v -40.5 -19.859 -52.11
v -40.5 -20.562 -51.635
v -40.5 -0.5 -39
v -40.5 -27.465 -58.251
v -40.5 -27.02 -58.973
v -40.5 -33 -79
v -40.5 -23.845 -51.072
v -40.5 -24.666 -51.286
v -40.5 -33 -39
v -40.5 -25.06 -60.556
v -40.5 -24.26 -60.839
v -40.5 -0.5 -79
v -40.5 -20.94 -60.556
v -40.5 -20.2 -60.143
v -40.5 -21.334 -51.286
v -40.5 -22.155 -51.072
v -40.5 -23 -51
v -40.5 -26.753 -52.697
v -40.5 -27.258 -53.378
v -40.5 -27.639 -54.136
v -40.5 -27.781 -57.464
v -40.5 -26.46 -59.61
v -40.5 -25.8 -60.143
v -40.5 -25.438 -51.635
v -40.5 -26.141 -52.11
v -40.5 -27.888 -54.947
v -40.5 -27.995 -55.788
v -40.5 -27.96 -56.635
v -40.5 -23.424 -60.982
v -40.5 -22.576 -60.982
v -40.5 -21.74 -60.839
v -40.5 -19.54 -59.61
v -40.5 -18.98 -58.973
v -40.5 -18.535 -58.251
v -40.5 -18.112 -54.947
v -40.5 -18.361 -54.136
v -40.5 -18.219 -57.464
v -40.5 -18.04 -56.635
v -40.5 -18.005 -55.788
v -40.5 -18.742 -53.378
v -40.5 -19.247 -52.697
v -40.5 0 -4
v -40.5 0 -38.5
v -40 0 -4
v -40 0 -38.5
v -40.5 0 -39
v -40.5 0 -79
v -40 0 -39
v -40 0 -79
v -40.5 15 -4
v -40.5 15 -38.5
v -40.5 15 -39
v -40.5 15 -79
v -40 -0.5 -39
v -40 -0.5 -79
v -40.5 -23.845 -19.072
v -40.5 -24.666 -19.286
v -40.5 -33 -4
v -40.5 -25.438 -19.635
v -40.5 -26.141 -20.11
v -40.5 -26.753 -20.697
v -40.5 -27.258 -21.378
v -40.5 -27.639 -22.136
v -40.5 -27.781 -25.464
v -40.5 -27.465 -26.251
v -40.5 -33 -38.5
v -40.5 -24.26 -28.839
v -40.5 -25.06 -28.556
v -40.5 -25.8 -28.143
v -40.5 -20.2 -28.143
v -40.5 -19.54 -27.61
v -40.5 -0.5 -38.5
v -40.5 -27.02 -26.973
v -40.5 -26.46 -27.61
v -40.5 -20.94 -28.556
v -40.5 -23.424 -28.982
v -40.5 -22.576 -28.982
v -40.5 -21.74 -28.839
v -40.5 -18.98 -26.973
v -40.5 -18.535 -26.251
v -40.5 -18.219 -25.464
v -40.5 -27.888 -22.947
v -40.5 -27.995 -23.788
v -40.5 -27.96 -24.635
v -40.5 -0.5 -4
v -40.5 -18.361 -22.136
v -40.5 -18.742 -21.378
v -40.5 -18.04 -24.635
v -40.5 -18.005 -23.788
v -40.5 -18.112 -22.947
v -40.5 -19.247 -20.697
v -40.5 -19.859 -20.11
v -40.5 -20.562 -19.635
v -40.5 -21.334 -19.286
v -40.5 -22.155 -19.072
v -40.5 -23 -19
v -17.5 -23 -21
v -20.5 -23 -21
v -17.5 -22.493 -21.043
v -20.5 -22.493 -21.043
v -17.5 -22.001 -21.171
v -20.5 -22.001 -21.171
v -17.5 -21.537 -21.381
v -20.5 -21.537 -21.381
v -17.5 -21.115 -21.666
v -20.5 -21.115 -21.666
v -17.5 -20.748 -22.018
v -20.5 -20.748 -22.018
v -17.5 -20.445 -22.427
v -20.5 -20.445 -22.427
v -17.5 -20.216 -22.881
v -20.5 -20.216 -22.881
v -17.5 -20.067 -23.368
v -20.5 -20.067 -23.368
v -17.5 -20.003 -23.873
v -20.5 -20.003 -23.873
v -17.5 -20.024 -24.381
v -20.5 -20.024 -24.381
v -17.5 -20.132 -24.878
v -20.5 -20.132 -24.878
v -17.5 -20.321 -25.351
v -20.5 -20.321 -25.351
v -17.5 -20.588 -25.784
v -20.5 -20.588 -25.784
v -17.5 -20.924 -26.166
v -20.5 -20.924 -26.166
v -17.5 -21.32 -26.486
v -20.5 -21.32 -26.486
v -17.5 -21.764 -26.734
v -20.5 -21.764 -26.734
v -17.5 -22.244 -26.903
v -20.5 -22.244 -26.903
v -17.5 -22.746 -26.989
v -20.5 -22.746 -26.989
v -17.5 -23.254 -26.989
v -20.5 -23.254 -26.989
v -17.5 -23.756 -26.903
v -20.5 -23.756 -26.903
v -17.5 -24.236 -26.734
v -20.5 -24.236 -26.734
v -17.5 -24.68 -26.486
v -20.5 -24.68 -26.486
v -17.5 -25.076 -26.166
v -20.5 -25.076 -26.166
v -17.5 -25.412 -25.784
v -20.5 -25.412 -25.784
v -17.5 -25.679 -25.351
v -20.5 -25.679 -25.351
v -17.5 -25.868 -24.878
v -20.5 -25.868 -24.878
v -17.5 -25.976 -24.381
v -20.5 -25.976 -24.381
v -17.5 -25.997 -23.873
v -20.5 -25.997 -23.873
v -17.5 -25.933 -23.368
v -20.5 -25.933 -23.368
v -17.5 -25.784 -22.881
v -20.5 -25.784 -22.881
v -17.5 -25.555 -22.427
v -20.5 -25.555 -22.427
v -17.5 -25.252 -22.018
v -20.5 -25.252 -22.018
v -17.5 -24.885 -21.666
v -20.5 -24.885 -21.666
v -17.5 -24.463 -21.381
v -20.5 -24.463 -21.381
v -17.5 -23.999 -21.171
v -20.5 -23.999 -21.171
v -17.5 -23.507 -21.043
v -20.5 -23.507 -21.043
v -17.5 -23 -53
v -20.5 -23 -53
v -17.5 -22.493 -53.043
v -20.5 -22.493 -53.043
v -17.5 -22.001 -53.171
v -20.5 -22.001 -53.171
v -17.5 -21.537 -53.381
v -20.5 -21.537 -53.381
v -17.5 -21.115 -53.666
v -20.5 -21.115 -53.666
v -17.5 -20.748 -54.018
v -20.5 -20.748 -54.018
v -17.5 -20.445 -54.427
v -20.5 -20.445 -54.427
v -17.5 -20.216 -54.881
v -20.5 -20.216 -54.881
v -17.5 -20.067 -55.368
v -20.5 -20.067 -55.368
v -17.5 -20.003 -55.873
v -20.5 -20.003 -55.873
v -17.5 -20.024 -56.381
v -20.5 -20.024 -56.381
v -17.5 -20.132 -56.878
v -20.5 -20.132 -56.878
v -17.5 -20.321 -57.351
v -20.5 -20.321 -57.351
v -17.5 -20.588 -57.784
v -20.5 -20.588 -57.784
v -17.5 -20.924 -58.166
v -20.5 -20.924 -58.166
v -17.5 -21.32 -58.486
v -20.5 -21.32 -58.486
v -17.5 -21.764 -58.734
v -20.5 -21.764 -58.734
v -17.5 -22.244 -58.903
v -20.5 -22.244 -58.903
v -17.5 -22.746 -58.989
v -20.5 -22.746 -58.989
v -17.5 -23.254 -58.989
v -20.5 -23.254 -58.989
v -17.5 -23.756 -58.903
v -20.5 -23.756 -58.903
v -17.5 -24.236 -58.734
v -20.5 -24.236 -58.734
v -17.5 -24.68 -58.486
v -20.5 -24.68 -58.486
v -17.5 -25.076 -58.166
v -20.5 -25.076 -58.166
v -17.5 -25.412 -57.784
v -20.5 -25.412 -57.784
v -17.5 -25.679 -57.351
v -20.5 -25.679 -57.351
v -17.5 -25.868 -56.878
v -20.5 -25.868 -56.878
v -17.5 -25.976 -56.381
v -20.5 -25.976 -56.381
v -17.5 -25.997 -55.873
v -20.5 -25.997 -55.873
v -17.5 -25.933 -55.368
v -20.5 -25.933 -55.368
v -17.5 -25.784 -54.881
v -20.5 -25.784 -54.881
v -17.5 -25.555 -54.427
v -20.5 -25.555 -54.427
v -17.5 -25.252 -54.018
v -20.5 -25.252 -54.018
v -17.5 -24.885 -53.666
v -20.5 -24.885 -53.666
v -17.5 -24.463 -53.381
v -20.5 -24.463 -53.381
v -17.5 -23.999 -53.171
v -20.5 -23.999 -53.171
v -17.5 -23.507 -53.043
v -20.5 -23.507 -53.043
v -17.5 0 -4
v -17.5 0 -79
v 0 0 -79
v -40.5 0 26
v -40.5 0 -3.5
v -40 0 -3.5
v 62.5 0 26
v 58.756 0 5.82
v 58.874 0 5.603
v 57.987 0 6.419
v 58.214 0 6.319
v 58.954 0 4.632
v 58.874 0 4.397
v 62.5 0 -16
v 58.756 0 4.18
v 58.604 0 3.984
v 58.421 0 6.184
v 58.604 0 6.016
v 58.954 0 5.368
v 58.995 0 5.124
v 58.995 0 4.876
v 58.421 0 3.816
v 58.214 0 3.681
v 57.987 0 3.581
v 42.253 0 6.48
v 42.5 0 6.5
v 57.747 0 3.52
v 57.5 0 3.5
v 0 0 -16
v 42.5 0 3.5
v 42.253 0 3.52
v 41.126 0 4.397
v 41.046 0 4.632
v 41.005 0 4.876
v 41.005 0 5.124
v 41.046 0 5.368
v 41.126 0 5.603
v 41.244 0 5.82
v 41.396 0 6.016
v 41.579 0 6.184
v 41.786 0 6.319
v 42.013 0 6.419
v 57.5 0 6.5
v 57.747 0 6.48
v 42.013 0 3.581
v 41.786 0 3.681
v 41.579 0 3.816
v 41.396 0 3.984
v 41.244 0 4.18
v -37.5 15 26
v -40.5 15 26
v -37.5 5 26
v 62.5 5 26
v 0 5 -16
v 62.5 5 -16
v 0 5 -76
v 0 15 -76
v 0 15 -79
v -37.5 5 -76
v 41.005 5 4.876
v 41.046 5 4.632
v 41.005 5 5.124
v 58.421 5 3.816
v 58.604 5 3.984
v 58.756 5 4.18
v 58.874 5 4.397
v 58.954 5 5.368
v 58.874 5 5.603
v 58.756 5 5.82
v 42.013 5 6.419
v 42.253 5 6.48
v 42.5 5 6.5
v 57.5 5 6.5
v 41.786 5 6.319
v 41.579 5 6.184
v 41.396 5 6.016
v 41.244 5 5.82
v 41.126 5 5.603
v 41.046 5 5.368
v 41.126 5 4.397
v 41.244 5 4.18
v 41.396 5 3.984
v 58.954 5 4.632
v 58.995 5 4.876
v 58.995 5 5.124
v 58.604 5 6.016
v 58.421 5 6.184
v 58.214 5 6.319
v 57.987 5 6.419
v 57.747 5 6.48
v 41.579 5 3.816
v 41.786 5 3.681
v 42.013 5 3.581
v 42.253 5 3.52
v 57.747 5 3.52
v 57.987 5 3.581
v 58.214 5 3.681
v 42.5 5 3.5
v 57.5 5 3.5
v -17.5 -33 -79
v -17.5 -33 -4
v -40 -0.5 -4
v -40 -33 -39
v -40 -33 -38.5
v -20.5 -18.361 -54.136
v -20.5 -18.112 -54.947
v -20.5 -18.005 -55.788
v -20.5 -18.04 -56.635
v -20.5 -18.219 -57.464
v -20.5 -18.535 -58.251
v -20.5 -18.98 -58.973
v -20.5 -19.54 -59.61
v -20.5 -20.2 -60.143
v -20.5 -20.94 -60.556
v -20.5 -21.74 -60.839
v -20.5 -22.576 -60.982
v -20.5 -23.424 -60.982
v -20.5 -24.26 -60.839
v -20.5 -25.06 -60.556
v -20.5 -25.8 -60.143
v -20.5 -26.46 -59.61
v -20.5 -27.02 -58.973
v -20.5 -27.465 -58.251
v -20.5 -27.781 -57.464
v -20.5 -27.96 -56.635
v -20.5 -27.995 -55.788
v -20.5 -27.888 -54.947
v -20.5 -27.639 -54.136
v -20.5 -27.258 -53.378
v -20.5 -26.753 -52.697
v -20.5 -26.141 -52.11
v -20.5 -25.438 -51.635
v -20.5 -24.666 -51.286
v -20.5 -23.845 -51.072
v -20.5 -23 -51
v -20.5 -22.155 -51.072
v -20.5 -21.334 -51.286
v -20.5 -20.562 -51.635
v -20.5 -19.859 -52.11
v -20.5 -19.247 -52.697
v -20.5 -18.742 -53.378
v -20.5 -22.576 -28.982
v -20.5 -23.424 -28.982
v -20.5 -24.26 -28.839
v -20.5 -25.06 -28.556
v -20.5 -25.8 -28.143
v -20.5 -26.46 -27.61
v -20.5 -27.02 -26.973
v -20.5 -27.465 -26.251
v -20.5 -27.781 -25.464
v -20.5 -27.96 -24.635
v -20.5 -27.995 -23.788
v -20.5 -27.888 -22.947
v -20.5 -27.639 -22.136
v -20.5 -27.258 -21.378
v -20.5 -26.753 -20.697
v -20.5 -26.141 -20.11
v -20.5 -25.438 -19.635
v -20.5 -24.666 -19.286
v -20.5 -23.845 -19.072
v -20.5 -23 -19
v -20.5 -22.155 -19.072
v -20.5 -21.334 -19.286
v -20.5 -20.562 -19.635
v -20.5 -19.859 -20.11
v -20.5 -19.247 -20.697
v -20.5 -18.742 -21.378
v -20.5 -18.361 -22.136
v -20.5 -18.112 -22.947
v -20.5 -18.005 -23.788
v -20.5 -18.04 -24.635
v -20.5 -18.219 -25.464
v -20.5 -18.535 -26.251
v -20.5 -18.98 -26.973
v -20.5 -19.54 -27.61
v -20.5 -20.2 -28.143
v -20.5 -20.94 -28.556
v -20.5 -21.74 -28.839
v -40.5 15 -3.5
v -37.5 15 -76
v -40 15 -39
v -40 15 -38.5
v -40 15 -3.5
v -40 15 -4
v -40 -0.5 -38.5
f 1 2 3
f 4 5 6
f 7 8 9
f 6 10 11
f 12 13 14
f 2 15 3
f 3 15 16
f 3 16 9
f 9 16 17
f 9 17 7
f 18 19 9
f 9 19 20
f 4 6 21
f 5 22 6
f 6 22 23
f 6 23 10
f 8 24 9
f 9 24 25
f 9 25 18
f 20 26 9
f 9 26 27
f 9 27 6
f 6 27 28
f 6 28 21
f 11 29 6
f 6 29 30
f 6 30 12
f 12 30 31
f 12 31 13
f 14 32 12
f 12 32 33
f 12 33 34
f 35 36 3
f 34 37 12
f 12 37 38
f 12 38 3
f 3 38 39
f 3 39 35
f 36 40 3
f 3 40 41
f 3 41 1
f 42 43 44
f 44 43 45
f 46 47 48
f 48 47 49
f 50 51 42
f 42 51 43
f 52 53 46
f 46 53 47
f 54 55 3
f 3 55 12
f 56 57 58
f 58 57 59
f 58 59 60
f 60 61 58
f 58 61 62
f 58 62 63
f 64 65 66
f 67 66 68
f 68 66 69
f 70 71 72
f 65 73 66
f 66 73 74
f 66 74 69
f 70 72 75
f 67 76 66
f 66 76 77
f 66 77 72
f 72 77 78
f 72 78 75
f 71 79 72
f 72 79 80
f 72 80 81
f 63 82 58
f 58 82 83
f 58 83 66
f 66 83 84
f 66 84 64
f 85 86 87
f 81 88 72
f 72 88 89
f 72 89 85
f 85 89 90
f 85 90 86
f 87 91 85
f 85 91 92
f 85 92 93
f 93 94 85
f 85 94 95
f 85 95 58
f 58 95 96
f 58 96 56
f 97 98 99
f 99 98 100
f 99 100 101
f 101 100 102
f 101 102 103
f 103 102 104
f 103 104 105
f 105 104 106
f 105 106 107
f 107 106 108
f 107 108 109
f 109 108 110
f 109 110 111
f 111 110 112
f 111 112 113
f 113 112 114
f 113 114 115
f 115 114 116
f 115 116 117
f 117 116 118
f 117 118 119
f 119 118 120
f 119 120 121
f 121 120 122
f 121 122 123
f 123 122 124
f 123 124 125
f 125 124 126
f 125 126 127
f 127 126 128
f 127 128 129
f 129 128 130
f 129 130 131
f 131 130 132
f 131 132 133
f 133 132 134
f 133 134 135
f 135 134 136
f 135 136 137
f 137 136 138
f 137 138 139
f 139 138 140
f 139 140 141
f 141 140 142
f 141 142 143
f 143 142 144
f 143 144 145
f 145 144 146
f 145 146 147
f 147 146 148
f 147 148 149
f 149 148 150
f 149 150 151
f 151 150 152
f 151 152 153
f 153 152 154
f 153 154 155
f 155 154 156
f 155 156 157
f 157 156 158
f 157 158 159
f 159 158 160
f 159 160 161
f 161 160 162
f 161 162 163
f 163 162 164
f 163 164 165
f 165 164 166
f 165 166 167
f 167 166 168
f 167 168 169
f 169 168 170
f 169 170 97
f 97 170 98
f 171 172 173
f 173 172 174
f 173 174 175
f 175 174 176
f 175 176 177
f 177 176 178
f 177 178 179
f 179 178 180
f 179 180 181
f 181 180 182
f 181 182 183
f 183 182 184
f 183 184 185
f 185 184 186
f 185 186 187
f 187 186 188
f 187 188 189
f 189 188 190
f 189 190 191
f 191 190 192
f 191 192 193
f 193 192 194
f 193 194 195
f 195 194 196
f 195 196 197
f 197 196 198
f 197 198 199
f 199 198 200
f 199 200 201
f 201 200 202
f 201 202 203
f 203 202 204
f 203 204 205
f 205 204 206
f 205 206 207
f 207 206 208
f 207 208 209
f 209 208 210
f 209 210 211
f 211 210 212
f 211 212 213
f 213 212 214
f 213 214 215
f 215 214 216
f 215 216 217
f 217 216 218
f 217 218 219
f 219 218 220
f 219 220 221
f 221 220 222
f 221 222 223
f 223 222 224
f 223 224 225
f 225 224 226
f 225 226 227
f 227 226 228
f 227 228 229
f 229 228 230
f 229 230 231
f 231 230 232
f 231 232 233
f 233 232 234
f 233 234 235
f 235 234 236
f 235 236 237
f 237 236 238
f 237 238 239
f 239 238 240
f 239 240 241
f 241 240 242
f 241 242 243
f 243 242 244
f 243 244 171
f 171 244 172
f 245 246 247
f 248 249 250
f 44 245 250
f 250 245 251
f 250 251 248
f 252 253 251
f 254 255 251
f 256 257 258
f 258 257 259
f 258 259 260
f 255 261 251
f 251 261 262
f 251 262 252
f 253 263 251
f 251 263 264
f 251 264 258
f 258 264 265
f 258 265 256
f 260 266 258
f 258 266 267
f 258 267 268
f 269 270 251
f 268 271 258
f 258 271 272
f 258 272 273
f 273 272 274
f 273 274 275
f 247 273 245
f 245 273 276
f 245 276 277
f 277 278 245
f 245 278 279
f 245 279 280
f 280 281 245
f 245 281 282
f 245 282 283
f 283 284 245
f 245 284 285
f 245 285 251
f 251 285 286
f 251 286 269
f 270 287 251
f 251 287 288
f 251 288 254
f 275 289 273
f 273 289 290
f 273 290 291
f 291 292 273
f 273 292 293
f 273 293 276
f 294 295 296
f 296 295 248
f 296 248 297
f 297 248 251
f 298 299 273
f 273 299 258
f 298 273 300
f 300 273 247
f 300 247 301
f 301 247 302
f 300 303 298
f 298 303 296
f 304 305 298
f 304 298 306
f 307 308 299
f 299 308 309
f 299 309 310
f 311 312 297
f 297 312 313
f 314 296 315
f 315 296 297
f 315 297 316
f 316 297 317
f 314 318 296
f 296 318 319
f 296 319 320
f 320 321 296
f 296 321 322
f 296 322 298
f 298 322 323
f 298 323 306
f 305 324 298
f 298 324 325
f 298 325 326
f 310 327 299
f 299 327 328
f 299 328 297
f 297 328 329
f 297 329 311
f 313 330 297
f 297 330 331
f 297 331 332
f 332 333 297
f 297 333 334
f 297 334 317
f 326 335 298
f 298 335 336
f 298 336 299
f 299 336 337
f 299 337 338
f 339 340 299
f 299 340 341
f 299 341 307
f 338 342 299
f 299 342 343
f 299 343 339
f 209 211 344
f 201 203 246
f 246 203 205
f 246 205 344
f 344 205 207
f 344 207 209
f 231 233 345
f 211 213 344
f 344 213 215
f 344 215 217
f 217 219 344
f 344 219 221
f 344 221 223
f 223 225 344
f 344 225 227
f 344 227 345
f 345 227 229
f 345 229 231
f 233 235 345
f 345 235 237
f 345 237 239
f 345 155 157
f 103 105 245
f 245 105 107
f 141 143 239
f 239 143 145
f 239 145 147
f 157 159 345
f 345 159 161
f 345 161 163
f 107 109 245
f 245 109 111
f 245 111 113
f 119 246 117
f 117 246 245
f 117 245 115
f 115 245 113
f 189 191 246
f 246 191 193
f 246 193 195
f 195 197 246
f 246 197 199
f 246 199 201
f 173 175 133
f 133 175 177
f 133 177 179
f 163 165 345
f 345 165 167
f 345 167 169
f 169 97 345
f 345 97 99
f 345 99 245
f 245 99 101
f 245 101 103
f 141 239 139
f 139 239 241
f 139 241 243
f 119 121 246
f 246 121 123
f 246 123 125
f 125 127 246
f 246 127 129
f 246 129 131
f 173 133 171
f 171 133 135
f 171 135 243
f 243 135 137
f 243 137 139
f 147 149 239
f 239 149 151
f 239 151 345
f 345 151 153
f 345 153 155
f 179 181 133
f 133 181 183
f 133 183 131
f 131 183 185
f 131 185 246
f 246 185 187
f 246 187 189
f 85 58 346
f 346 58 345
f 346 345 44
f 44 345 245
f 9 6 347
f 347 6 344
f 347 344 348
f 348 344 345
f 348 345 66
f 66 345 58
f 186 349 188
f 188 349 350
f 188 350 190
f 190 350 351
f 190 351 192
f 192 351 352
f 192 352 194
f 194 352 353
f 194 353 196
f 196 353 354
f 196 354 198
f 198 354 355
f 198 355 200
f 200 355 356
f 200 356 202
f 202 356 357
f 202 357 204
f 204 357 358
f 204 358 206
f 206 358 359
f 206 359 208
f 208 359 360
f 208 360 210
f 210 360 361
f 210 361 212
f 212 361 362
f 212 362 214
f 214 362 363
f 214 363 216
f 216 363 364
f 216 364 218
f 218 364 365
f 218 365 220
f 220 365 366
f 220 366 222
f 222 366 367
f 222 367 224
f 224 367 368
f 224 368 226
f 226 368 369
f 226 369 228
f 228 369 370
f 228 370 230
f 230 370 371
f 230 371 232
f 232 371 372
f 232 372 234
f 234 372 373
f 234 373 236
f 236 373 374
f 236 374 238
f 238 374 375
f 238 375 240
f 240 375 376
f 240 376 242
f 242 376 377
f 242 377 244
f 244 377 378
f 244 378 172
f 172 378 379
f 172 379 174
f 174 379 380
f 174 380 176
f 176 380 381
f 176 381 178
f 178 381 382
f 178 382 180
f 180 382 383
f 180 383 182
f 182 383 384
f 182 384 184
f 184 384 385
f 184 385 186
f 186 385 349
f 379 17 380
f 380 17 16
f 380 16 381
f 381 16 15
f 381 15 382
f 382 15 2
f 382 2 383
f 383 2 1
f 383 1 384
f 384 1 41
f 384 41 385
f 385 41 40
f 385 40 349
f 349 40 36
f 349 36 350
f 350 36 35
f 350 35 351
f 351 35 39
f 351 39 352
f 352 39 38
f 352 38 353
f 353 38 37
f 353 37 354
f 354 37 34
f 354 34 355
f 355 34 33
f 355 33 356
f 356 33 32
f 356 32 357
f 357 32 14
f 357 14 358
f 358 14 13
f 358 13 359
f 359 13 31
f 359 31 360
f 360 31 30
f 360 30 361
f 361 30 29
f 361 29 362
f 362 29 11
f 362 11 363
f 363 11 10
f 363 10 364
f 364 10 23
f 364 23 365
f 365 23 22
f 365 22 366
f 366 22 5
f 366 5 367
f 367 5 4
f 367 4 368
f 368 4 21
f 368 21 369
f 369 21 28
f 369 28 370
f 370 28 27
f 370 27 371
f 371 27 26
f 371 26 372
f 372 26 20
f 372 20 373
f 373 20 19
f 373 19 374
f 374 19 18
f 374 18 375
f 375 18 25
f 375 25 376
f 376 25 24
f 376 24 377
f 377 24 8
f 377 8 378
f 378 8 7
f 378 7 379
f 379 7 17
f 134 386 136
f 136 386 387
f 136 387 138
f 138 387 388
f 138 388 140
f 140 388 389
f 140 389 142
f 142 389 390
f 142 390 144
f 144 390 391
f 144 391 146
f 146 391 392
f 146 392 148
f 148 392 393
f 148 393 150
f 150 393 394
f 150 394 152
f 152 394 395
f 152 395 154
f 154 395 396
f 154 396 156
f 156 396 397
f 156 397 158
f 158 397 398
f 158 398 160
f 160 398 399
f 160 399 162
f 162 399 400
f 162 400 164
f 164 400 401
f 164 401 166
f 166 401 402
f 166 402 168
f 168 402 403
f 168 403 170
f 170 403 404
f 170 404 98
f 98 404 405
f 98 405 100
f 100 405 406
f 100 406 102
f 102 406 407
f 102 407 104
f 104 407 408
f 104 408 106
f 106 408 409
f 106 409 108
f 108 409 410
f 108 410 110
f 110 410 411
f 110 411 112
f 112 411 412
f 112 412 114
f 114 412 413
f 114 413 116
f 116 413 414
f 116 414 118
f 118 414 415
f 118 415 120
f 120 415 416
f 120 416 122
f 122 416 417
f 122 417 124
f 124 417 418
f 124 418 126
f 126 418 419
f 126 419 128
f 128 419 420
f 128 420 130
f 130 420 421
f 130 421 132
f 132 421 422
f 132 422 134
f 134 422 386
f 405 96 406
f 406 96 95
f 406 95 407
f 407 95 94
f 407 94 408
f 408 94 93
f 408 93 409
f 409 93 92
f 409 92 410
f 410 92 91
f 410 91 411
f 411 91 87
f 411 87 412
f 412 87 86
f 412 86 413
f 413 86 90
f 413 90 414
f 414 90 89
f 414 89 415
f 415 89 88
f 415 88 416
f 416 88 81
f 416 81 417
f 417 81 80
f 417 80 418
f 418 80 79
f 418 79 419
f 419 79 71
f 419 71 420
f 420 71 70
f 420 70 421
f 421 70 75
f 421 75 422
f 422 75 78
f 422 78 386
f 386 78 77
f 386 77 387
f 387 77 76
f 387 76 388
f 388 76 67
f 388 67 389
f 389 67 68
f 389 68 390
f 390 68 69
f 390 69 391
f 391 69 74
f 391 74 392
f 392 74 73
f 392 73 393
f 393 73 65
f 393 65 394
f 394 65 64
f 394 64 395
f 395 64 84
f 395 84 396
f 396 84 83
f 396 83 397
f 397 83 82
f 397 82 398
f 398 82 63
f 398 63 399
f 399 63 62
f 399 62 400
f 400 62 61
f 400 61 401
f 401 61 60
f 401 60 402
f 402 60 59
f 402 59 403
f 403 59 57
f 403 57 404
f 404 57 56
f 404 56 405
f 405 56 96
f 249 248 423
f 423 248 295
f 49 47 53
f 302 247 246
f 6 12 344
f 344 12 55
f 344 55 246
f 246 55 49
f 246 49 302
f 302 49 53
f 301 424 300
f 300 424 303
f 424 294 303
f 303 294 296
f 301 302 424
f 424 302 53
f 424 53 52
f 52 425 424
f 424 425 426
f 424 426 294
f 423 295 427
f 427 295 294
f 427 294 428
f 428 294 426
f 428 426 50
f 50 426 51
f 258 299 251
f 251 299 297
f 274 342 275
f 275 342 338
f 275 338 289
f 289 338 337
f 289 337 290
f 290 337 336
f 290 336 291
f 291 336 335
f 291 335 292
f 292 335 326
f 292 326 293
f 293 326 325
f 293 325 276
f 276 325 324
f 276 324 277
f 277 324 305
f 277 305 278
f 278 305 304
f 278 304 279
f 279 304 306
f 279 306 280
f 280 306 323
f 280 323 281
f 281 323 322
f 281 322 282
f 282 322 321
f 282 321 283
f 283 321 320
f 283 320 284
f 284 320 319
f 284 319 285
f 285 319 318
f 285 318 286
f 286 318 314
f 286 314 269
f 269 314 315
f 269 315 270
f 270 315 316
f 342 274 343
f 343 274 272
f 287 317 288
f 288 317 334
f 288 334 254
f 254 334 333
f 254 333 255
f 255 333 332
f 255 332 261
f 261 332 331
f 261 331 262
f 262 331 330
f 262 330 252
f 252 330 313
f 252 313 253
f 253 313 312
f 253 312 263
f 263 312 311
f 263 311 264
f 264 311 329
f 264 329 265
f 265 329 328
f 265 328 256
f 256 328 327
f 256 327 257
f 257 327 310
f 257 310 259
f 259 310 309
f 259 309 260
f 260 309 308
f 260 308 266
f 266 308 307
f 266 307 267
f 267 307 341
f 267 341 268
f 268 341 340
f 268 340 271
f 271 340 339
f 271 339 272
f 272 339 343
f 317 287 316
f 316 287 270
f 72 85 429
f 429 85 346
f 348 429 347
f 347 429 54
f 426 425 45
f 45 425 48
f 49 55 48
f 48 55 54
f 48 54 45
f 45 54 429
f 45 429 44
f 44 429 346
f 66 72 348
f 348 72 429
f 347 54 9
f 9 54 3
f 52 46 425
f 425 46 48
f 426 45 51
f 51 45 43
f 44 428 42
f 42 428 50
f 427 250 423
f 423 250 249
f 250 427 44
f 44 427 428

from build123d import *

# Parameters (mm, degrees)
EXTRUDE_1_DEPTH     = 5
SKETCH_2_W          = 20
SKETCH_2_H          = 72
EXTRUDE_2_DEPTH     = 33
SKETCH_3_R          = 3
CUT_EXTRUDE_1_DEPTH = 30
SKETCH_4_R          = 5
CUT_EXTRUDE_2_DEPTH = 17
EXTRUDE_START       = 3
SKETCH_5_R          = 5
EXTRUDE_3_DEPTH     = 3
EXTRUDE_4_DEPTH     = 3
EXTRUDE_5_DEPTH     = 10
SKETCH_8_W          = 42
SKETCH_8_H          = 5
EXTRUDE_6_DEPTH     = 25
CUT_EXTRUDE_3_DEPTH = 10
SKETCH_10_W         = 75
SKETCH_10_H         = 0.5
CUT_EXTRUDE_4_DEPTH = 0.5
SKETCH_11_W         = 0.5
SKETCH_11_H         = 15
SKETCH_11_H_2       = 48
CUT_EXTRUDE_5_DEPTH = 0.5


with BuildPart() as part:
    # 草图1 → 凸台-拉伸1 (new body)
    with BuildSketch(Plane(origin=(0, 0, 0), x_dir=(1, 0, 0), z_dir=(0, 1, 0))):
        Polygon((-37.5, 76), (-37.5, -26), (37.5, -26), (37.5, 16), (0, 16), (0, 76), align=None)
    extrude(amount=EXTRUDE_1_DEPTH)

    # 草图2 → 凸台-拉伸2 (add)
    with BuildSketch(Plane.XZ):
        with Locations((-27.5, -40)):
            Rectangle(SKETCH_2_W, SKETCH_2_H)
    extrude(amount=EXTRUDE_2_DEPTH)

    # 草图3 → 切除-拉伸1 (cut)
    with BuildSketch(Plane.ZY.offset(37.5)):
        with Locations((-56, -23)):
            Circle(SKETCH_3_R)
        with Locations((-24, -23)):
            Circle(SKETCH_3_R)
    extrude(amount=-CUT_EXTRUDE_1_DEPTH, mode=Mode.SUBTRACT)

    # 草图4 → 切除-拉伸2 (cut)
    with BuildSketch(Plane.ZY.offset(37.5)):
        with Locations((-56, -23)):
            Circle(SKETCH_4_R)
        with Locations((-24, -23)):
            Circle(SKETCH_4_R)
    extrude(amount=-CUT_EXTRUDE_2_DEPTH, mode=Mode.SUBTRACT)

    # 草图5 → 凸台-拉伸3 (add)
    with BuildSketch(Plane.ZY.offset(37.5).offset(EXTRUDE_START)):
        Polygon((-76, 5), (26, 5), (26, 0), (-4, 0), (-4, -33), (-76, -33), align=None)
        with Locations((-56, -23)):
            Circle(SKETCH_5_R, mode=Mode.SUBTRACT)
        with Locations((-24, -23)):
            Circle(SKETCH_5_R, mode=Mode.SUBTRACT)
    extrude(amount=-EXTRUDE_3_DEPTH)

    # 草图6 → 凸台-拉伸4 (add)
    with BuildSketch(Plane(origin=(0, 0, -76), x_dir=(-1, 0, 0), z_dir=(0, 0, -1))):
        Polygon((0, 5), (0, 0), (17.5, 0), (17.5, -33), (40.5, -33), (40.5, 5), align=None)
    extrude(amount=EXTRUDE_4_DEPTH)

    # 草图7 → 凸台-拉伸5 (add)
    with BuildSketch(Plane(origin=(0, 5, 0), x_dir=(1, 0, 0), z_dir=(0, 1, 0))):
        Polygon((0, 76), (0, 79), (-40.5, 79), (-40.5, -26), (-37.5, -26), (-37.5, 76), align=None)
    extrude(amount=EXTRUDE_5_DEPTH)

    # 草图8 → 凸台-拉伸6 (add)
    with BuildSketch(Plane(origin=(37.5, 0, 0), x_dir=(0, 0, -1), z_dir=(1, 0, 0))):
        with Locations((-5, 2.5)):
            Rectangle(SKETCH_8_W, SKETCH_8_H)
    extrude(amount=EXTRUDE_6_DEPTH)

    # 草图9 → 切除-拉伸3 (cut)
    with BuildSketch(Plane(origin=(0, 5, 0), x_dir=(1, 0, 0), z_dir=(0, 1, 0))):
        with BuildLine():
            Line((57.5, -3.5), (42.5, -3.5))
            ThreePointArc((42.5, -3.5), (41, -5), (42.5, -6.5))
            Line((42.5, -6.5), (57.5, -6.5))
            ThreePointArc((57.5, -6.5), (59, -5), (57.5, -3.5))
        make_face()
    extrude(amount=-CUT_EXTRUDE_3_DEPTH, mode=Mode.SUBTRACT)

    # 草图10 → 切除-拉伸4 (cut)
    with BuildSketch(Plane.ZY.offset(40.5)):
        with Locations((-41.5, -0.25)):
            Rectangle(SKETCH_10_W, SKETCH_10_H)
    extrude(amount=-CUT_EXTRUDE_4_DEPTH, mode=Mode.SUBTRACT)

    # 草图11 → 切除-拉伸5 (cut)
    with BuildSketch(Plane.ZY.offset(40.5)):
        with Locations((-3.75, 7.5)):
            Rectangle(SKETCH_11_W, SKETCH_11_H)
        with Locations((-38.75, -9)):
            Rectangle(SKETCH_11_W, SKETCH_11_H_2)
    extrude(amount=-CUT_EXTRUDE_5_DEPTH, mode=Mode.SUBTRACT)


solid = part.part
